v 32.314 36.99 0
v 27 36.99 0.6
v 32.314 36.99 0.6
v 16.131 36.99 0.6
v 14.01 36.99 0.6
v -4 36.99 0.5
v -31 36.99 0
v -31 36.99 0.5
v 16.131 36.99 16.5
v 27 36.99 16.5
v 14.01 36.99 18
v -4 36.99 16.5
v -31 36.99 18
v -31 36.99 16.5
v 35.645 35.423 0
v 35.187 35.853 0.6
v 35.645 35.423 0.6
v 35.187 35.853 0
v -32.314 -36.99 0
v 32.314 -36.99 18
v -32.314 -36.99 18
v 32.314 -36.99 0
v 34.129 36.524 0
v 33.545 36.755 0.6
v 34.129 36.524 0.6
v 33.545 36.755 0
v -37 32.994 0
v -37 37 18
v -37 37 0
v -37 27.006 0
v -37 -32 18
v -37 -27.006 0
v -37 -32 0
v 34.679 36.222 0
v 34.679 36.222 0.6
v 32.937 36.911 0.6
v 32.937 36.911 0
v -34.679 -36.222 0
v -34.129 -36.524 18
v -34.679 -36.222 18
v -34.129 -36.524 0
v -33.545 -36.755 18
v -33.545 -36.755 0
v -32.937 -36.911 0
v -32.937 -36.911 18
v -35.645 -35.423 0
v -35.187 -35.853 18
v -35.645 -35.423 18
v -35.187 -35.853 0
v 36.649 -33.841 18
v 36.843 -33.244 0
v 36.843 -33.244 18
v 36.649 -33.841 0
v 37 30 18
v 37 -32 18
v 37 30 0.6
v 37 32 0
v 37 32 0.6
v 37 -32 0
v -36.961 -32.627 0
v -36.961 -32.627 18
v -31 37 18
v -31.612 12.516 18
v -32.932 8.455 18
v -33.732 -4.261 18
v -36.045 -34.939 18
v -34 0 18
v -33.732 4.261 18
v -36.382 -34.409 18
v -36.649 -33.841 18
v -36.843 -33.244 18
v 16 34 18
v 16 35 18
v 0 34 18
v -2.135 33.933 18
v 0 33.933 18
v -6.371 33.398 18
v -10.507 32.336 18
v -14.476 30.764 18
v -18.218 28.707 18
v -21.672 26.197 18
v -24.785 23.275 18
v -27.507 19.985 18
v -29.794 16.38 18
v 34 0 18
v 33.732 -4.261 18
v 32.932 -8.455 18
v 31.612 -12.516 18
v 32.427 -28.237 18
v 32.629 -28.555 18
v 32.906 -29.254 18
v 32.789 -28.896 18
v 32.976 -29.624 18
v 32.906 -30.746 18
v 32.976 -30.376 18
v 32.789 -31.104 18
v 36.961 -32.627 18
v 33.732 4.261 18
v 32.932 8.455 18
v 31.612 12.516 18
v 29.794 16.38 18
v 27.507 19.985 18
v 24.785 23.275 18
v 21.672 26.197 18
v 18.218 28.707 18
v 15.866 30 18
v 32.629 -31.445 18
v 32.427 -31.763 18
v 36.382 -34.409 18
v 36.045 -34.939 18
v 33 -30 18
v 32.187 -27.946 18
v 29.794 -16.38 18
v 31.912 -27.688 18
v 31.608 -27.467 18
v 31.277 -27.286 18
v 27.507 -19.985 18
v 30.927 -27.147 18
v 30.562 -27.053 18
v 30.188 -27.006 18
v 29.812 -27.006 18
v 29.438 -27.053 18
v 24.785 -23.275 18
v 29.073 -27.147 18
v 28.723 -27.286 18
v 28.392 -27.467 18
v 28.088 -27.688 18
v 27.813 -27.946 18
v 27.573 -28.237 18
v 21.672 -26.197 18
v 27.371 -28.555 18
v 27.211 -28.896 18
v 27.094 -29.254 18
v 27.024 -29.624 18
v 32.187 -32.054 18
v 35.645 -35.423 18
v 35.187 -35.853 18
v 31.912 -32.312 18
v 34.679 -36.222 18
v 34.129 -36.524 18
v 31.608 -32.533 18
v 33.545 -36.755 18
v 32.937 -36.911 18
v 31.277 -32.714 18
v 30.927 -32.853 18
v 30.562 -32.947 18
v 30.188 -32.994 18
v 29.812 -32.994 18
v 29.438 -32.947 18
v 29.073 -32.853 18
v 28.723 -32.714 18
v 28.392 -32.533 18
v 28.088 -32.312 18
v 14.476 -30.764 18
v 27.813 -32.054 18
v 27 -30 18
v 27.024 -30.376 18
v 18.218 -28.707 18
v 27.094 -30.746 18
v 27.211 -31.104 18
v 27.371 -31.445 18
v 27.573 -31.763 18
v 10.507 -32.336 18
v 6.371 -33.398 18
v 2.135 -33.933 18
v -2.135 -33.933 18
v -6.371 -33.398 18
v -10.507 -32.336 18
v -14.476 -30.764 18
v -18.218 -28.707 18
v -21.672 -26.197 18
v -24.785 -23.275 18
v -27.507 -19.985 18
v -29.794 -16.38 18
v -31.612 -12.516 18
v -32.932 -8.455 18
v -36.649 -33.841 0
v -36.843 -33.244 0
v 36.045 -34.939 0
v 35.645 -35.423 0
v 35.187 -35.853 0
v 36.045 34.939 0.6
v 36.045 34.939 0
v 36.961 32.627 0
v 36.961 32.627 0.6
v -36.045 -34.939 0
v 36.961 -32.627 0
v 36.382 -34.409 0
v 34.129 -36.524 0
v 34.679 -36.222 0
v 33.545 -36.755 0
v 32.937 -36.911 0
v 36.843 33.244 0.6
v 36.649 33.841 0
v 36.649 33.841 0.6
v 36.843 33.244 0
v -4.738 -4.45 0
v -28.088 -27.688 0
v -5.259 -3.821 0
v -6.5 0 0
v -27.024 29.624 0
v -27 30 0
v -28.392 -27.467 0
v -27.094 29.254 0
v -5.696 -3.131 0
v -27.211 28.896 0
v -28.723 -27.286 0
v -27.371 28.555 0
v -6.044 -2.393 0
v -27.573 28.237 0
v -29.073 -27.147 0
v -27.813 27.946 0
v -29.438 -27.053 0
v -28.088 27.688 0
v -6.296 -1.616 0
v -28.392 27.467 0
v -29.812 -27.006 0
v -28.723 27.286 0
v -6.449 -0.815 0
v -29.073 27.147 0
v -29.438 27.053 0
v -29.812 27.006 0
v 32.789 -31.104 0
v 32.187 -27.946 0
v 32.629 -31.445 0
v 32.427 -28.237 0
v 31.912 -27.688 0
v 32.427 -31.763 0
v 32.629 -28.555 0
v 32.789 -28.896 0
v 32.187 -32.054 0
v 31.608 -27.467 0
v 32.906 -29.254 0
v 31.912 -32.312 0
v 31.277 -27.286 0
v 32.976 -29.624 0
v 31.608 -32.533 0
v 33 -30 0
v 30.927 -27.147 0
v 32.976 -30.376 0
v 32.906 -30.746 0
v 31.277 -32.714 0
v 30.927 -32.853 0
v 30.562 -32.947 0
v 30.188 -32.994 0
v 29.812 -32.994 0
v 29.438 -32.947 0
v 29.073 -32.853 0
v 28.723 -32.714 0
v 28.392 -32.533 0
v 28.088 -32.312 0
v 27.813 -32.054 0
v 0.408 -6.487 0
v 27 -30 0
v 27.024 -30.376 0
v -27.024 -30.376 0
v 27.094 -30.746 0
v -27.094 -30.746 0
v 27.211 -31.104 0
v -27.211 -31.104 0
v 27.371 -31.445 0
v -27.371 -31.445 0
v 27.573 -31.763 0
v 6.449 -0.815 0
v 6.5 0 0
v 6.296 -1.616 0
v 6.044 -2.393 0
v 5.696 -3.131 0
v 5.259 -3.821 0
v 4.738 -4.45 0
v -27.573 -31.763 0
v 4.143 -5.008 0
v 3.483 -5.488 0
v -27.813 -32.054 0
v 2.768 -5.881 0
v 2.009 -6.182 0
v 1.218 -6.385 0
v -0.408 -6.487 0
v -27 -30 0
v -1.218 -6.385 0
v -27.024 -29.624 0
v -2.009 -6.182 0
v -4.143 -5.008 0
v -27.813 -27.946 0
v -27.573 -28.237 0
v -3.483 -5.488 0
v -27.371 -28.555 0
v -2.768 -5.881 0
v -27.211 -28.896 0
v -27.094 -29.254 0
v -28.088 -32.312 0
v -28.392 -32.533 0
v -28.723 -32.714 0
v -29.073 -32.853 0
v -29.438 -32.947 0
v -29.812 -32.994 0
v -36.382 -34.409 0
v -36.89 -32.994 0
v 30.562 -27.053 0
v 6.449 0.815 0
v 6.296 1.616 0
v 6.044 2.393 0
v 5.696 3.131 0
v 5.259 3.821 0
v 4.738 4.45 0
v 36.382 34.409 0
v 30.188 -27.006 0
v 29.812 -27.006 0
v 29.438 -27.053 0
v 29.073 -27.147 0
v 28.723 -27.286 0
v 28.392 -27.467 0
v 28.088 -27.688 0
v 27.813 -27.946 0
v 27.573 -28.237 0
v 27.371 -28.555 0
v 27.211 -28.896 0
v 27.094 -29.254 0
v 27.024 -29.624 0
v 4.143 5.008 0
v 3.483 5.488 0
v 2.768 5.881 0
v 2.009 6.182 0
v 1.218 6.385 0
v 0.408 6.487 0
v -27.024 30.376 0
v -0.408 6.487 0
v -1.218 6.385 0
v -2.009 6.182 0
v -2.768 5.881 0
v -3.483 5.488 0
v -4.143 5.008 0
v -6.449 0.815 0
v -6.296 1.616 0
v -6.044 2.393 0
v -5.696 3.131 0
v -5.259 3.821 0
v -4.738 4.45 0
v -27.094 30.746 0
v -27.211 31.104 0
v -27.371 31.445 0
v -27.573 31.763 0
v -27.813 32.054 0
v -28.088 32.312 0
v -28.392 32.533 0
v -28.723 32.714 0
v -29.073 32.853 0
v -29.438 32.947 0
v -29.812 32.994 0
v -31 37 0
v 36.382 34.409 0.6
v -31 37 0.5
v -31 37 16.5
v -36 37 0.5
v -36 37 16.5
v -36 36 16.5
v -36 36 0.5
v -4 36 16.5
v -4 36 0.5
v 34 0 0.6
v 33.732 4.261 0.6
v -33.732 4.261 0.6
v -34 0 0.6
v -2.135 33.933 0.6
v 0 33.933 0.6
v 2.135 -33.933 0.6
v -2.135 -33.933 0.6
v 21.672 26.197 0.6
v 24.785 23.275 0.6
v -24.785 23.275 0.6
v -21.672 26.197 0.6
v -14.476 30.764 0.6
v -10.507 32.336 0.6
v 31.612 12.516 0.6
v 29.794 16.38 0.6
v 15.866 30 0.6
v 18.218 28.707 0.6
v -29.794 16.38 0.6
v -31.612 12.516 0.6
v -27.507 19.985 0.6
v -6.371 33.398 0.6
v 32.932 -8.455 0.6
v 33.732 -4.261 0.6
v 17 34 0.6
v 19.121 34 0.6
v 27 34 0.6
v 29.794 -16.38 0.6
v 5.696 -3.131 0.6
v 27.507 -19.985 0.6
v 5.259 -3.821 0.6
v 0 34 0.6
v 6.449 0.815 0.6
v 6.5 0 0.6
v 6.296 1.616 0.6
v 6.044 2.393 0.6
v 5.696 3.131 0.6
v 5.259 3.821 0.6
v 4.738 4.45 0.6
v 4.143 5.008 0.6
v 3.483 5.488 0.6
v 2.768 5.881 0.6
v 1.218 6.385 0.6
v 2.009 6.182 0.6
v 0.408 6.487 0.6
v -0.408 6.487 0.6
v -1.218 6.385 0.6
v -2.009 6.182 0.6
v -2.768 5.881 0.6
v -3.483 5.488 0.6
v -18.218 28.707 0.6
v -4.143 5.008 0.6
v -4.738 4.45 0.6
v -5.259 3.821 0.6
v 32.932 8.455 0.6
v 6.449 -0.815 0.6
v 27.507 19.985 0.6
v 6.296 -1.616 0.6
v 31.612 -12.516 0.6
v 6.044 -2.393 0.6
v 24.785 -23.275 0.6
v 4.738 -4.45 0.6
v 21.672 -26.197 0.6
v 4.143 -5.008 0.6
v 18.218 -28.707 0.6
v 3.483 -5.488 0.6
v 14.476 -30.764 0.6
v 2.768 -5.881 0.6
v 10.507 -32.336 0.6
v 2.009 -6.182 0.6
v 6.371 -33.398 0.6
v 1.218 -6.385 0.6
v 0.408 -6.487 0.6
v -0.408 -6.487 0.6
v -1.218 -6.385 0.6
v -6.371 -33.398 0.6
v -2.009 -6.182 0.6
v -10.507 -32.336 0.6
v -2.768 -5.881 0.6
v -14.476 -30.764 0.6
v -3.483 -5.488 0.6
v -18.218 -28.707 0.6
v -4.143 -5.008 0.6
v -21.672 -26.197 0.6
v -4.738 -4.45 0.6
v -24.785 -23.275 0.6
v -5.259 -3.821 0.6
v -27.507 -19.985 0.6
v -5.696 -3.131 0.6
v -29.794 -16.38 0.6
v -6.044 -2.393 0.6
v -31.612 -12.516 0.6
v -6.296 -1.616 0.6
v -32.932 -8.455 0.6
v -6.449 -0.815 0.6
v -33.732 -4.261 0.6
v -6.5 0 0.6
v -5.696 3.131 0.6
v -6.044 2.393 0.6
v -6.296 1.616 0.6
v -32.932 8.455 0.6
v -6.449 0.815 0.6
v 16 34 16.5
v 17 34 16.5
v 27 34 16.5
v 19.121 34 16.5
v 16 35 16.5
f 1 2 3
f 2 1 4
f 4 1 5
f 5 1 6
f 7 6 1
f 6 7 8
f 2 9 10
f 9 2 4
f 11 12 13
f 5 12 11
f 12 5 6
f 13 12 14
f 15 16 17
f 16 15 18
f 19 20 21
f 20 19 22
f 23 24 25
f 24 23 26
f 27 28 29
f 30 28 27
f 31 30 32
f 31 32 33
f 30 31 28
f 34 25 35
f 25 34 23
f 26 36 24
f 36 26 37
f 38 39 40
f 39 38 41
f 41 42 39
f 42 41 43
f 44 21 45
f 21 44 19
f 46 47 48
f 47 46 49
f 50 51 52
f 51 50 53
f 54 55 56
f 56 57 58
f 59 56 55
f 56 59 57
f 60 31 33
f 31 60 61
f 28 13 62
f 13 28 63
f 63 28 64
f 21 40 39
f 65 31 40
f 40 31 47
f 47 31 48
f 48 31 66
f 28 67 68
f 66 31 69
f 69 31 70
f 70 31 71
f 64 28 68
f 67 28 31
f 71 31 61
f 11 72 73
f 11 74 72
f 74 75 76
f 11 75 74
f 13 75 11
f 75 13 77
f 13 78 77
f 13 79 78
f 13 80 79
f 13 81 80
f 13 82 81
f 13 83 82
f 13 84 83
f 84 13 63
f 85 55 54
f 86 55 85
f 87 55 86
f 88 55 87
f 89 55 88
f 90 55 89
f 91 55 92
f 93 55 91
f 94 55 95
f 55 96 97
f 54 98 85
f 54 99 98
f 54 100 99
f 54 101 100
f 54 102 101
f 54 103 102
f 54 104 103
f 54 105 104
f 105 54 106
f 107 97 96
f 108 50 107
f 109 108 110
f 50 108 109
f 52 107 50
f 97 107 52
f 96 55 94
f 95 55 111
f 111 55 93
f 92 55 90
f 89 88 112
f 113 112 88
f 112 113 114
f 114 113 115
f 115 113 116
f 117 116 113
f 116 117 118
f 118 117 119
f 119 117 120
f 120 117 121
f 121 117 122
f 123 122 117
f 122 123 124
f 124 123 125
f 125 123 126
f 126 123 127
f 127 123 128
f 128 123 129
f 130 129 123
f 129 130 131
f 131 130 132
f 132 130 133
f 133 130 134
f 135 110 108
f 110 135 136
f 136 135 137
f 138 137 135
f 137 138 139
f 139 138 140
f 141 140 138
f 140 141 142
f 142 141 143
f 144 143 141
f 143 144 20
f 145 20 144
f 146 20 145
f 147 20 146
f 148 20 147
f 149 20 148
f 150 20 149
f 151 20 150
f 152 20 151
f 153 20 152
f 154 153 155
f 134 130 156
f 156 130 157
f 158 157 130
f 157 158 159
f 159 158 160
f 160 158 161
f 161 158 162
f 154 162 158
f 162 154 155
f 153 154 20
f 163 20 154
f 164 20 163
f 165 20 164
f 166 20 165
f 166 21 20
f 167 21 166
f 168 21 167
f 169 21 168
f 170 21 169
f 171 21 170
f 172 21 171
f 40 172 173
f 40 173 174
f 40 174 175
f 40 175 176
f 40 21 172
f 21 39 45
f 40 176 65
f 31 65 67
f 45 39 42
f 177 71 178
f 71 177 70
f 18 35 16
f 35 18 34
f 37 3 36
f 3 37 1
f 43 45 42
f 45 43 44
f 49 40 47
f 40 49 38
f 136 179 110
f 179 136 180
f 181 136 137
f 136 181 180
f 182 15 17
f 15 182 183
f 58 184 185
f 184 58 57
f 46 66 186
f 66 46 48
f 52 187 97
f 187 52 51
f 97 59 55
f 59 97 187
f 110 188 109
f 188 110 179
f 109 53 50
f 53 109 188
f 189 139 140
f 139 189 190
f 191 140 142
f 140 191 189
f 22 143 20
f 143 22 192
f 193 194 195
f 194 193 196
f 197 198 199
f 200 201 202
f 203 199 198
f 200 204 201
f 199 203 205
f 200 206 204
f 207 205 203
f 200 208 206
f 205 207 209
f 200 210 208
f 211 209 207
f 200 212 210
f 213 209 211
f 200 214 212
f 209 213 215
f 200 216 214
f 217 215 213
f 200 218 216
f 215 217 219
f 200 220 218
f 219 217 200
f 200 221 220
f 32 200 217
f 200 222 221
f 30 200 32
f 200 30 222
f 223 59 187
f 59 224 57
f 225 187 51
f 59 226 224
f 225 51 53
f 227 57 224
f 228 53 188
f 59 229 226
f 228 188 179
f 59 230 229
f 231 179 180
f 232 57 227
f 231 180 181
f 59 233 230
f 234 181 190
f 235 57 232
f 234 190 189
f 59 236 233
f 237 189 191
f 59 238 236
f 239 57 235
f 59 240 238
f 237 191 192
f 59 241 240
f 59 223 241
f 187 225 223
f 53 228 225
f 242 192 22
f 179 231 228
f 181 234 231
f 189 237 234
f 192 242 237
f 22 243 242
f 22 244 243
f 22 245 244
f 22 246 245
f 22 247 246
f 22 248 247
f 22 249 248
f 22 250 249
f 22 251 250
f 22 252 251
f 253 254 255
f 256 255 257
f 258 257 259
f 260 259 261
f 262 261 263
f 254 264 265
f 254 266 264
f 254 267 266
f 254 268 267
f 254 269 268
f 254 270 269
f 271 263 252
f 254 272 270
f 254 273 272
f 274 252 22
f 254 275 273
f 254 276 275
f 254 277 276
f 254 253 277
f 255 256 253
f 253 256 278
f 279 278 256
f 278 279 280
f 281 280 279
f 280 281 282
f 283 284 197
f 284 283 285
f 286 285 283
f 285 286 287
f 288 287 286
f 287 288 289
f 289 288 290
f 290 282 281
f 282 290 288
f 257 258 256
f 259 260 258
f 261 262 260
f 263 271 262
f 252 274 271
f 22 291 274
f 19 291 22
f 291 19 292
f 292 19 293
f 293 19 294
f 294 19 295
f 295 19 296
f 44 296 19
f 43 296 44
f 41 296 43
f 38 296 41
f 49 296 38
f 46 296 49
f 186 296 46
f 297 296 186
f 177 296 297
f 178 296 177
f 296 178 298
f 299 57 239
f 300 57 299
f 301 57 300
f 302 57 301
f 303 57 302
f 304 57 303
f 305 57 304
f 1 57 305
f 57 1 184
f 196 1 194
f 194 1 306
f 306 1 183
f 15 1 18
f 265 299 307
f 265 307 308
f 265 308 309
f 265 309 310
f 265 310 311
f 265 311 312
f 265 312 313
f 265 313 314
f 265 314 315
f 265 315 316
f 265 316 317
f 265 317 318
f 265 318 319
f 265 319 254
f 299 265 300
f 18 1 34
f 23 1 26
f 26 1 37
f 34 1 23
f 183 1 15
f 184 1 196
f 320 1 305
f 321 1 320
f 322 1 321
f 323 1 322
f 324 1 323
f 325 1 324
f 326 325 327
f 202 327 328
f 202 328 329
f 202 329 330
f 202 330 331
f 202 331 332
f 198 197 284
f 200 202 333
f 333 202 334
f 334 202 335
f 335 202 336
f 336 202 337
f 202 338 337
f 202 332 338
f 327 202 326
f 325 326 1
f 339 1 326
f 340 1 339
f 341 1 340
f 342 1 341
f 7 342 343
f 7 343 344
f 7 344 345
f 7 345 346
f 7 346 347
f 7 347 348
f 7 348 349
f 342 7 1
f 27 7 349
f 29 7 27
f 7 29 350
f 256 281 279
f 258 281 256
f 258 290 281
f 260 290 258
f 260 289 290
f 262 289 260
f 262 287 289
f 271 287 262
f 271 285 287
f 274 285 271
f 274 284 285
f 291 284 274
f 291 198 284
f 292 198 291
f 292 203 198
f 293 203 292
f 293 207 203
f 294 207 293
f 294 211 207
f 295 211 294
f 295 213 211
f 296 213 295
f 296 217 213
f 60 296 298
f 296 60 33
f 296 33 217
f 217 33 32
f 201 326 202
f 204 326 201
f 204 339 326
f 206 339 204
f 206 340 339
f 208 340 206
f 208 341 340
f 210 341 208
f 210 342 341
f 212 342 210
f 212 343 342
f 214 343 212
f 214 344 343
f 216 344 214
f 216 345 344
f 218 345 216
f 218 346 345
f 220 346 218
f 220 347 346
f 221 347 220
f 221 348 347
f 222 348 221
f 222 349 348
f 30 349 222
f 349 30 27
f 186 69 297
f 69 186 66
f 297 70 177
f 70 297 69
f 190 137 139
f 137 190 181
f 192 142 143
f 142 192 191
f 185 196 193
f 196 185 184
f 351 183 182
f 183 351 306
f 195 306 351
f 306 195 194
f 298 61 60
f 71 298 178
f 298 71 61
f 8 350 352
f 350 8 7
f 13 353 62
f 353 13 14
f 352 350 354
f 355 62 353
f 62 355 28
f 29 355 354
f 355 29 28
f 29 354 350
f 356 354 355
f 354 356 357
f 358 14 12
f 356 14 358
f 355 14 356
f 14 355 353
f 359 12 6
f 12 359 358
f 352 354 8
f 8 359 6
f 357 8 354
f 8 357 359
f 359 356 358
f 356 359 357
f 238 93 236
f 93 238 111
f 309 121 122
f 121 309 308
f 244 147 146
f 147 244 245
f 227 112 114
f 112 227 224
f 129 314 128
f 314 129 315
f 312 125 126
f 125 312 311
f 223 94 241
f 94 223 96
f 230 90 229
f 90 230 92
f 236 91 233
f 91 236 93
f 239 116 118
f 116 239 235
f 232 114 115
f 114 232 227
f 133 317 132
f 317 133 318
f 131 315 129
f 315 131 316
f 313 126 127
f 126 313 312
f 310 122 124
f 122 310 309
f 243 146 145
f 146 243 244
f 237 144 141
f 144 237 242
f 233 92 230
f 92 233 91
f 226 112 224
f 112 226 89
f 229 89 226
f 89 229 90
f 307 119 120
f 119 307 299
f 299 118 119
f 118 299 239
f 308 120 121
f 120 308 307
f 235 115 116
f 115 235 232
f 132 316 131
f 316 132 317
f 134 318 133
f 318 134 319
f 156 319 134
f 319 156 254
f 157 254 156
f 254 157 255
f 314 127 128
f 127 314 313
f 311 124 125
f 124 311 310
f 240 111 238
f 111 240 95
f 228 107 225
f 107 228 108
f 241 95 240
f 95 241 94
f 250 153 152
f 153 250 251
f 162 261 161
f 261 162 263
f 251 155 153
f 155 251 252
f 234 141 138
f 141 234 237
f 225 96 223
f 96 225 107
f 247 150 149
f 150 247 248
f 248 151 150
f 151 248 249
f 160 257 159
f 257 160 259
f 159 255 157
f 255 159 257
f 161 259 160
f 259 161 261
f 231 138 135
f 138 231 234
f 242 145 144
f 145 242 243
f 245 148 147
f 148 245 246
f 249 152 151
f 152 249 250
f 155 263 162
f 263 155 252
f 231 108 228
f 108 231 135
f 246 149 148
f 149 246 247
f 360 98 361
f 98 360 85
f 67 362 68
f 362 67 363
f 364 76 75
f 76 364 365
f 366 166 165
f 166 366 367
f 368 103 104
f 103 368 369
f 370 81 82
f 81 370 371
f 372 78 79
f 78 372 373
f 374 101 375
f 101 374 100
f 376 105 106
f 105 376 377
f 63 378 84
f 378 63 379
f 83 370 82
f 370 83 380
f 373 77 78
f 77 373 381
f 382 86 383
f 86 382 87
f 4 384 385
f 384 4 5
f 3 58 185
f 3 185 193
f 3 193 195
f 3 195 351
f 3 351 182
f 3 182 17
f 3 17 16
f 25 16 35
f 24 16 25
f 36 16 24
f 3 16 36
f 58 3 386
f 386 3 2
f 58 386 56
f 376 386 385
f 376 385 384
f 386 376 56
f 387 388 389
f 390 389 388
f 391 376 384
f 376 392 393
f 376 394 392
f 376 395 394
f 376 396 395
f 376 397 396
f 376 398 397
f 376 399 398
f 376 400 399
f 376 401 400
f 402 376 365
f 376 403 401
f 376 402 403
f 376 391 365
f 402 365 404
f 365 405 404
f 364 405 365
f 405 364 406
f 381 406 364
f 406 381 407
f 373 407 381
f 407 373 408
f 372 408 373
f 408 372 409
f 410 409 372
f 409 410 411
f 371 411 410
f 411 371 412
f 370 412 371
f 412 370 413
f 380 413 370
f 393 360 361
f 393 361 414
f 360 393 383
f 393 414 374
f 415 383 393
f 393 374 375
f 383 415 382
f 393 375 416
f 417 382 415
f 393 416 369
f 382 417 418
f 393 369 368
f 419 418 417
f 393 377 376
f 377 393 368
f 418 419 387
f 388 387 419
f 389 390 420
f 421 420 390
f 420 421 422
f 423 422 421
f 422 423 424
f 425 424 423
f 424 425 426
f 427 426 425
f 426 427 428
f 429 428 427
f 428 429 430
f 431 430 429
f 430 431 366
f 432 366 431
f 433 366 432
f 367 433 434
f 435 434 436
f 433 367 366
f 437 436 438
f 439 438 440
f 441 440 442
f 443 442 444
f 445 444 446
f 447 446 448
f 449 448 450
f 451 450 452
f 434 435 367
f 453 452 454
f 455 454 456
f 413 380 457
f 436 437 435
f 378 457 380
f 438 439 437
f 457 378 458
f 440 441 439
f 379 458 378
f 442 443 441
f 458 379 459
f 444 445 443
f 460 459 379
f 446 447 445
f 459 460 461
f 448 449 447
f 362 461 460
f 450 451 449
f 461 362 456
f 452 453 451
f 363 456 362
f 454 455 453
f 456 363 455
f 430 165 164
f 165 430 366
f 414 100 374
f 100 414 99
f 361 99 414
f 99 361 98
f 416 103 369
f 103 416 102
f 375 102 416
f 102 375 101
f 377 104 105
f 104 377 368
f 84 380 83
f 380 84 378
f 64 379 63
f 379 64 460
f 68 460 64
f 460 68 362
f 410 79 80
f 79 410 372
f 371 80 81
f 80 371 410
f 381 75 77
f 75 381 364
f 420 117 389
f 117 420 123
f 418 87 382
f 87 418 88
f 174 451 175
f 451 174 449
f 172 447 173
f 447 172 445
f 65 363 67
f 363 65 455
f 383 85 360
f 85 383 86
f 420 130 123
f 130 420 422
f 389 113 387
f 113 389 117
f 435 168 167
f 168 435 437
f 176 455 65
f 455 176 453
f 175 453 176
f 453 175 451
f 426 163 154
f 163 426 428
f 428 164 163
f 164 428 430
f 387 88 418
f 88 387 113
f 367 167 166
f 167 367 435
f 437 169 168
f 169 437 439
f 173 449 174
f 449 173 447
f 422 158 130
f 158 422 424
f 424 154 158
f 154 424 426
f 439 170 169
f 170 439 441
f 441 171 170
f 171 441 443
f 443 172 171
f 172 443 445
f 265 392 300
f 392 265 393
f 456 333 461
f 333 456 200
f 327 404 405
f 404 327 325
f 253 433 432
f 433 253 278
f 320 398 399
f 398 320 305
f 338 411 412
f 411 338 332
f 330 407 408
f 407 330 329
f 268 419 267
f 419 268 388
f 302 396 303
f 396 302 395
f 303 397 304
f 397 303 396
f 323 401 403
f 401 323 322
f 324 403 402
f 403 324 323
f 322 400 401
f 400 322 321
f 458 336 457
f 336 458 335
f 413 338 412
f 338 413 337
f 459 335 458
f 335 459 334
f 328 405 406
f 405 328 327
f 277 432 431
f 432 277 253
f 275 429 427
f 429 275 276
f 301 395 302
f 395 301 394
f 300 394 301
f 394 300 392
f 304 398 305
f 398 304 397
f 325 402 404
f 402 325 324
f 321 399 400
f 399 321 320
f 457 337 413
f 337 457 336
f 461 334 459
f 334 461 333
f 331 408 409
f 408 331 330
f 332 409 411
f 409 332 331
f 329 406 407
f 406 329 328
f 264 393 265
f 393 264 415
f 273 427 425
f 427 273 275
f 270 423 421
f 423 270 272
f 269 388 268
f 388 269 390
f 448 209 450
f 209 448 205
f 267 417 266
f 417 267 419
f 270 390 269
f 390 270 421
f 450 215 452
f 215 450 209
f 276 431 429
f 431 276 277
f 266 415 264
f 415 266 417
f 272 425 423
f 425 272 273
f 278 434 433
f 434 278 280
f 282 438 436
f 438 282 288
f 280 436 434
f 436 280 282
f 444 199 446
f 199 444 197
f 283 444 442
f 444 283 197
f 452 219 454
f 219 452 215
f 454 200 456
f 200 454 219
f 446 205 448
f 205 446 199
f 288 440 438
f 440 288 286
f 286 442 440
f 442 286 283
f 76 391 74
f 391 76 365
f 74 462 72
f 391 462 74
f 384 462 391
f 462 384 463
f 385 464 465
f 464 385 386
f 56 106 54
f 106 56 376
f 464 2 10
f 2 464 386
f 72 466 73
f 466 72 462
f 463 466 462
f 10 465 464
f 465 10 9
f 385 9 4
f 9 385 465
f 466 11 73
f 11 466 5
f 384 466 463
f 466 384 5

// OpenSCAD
$fn = 50;


difference() {
	union() {
		hull() {
			translate(v = [-32.0000000000, 32.0000000000, 0]) {
				cylinder(h = 18, r = 5);
			}
			translate(v = [32.0000000000, 32.0000000000, 0]) {
				cylinder(h = 18, r = 5);
			}
			translate(v = [-32.0000000000, -32.0000000000, 0]) {
				cylinder(h = 18, r = 5);
			}
			translate(v = [32.0000000000, -32.0000000000, 0]) {
				cylinder(h = 18, r = 5);
			}
		}
		translate(v = [-37.0000000000, 31.0000000000, 0]) {
			cube(size = [6, 6, 18]);
		}
	}
	union() {
		translate(v = [-37.5000000000, -30.0000000000, -250.0000000000]) {
			rotate(a = [0, 0, 0]) {
				difference() {
					union() {
						hull() {
							translate(v = [7.5000000000, 0, 0]) {
								cylinder(h = 250, r = 3.0000000000, r1 = 3.0000000000, r2 = 3.0000000000);
							}
							translate(v = [-7.5000000000, 0, 0]) {
								cylinder(h = 250, r = 3.0000000000, r1 = 3.0000000000, r2 = 3.0000000000);
							}
						}
					}
					union();
				}
			}
		}
		translate(v = [-37.5000000000, 30.0000000000, -250.0000000000]) {
			rotate(a = [0, 0, 0]) {
				difference() {
					union() {
						hull() {
							translate(v = [7.5000000000, 0, 0]) {
								cylinder(h = 250, r = 3.0000000000, r1 = 3.0000000000, r2 = 3.0000000000);
							}
							translate(v = [-7.5000000000, 0, 0]) {
								cylinder(h = 250, r = 3.0000000000, r1 = 3.0000000000, r2 = 3.0000000000);
							}
						}
					}
					union();
				}
			}
		}
		translate(v = [-36.0000000000, 36.0000000000, 0.5000000000]) {
			cube(size = [32, 1, 16]);
		}
		translate(v = [30.0000000000, -30.0000000000, -50.0000000000]) {
			cylinder(h = 100, r = 3.0000000000);
		}
		translate(v = [0, 0, 0.6000000000]) {
			cylinder(h = 20.4000000000, r = 34.0000000000);
		}
		translate(v = [0, 0, -9.0000000000]) {
			cylinder(h = 18, r = 6.5000000000);
		}
		translate(v = [0.0000000000, 30.0000000000, 0.6000000000]) {
			cube(size = [37.0000000000, 4, 20.4000000000]);
		}
		translate(v = [27.0000000000, 30.0000000000, 0.6000000000]) {
			cube(size = [10, 7, 20.4000000000]);
		}
		translate(v = [16.0000000000, 30.0000000000, 16.5000000000]) {
			cube(size = [21, 7, 1.5000000000]);
		}
		translate(v = [13.2500000000, 37.7500000000, 0.6000000000]) {
			rotate(a = [0, 0, -45]) {
				cube(size = [7.5000000000, 1.5000000000, 20.4000000000]);
			}
		}
		translate(v = [7.0610000000, 28.0000000000, 0.6000000000]) {
			cube(size = [7.5000000000, 2, 17.4000000000]);
		}
	}
}
